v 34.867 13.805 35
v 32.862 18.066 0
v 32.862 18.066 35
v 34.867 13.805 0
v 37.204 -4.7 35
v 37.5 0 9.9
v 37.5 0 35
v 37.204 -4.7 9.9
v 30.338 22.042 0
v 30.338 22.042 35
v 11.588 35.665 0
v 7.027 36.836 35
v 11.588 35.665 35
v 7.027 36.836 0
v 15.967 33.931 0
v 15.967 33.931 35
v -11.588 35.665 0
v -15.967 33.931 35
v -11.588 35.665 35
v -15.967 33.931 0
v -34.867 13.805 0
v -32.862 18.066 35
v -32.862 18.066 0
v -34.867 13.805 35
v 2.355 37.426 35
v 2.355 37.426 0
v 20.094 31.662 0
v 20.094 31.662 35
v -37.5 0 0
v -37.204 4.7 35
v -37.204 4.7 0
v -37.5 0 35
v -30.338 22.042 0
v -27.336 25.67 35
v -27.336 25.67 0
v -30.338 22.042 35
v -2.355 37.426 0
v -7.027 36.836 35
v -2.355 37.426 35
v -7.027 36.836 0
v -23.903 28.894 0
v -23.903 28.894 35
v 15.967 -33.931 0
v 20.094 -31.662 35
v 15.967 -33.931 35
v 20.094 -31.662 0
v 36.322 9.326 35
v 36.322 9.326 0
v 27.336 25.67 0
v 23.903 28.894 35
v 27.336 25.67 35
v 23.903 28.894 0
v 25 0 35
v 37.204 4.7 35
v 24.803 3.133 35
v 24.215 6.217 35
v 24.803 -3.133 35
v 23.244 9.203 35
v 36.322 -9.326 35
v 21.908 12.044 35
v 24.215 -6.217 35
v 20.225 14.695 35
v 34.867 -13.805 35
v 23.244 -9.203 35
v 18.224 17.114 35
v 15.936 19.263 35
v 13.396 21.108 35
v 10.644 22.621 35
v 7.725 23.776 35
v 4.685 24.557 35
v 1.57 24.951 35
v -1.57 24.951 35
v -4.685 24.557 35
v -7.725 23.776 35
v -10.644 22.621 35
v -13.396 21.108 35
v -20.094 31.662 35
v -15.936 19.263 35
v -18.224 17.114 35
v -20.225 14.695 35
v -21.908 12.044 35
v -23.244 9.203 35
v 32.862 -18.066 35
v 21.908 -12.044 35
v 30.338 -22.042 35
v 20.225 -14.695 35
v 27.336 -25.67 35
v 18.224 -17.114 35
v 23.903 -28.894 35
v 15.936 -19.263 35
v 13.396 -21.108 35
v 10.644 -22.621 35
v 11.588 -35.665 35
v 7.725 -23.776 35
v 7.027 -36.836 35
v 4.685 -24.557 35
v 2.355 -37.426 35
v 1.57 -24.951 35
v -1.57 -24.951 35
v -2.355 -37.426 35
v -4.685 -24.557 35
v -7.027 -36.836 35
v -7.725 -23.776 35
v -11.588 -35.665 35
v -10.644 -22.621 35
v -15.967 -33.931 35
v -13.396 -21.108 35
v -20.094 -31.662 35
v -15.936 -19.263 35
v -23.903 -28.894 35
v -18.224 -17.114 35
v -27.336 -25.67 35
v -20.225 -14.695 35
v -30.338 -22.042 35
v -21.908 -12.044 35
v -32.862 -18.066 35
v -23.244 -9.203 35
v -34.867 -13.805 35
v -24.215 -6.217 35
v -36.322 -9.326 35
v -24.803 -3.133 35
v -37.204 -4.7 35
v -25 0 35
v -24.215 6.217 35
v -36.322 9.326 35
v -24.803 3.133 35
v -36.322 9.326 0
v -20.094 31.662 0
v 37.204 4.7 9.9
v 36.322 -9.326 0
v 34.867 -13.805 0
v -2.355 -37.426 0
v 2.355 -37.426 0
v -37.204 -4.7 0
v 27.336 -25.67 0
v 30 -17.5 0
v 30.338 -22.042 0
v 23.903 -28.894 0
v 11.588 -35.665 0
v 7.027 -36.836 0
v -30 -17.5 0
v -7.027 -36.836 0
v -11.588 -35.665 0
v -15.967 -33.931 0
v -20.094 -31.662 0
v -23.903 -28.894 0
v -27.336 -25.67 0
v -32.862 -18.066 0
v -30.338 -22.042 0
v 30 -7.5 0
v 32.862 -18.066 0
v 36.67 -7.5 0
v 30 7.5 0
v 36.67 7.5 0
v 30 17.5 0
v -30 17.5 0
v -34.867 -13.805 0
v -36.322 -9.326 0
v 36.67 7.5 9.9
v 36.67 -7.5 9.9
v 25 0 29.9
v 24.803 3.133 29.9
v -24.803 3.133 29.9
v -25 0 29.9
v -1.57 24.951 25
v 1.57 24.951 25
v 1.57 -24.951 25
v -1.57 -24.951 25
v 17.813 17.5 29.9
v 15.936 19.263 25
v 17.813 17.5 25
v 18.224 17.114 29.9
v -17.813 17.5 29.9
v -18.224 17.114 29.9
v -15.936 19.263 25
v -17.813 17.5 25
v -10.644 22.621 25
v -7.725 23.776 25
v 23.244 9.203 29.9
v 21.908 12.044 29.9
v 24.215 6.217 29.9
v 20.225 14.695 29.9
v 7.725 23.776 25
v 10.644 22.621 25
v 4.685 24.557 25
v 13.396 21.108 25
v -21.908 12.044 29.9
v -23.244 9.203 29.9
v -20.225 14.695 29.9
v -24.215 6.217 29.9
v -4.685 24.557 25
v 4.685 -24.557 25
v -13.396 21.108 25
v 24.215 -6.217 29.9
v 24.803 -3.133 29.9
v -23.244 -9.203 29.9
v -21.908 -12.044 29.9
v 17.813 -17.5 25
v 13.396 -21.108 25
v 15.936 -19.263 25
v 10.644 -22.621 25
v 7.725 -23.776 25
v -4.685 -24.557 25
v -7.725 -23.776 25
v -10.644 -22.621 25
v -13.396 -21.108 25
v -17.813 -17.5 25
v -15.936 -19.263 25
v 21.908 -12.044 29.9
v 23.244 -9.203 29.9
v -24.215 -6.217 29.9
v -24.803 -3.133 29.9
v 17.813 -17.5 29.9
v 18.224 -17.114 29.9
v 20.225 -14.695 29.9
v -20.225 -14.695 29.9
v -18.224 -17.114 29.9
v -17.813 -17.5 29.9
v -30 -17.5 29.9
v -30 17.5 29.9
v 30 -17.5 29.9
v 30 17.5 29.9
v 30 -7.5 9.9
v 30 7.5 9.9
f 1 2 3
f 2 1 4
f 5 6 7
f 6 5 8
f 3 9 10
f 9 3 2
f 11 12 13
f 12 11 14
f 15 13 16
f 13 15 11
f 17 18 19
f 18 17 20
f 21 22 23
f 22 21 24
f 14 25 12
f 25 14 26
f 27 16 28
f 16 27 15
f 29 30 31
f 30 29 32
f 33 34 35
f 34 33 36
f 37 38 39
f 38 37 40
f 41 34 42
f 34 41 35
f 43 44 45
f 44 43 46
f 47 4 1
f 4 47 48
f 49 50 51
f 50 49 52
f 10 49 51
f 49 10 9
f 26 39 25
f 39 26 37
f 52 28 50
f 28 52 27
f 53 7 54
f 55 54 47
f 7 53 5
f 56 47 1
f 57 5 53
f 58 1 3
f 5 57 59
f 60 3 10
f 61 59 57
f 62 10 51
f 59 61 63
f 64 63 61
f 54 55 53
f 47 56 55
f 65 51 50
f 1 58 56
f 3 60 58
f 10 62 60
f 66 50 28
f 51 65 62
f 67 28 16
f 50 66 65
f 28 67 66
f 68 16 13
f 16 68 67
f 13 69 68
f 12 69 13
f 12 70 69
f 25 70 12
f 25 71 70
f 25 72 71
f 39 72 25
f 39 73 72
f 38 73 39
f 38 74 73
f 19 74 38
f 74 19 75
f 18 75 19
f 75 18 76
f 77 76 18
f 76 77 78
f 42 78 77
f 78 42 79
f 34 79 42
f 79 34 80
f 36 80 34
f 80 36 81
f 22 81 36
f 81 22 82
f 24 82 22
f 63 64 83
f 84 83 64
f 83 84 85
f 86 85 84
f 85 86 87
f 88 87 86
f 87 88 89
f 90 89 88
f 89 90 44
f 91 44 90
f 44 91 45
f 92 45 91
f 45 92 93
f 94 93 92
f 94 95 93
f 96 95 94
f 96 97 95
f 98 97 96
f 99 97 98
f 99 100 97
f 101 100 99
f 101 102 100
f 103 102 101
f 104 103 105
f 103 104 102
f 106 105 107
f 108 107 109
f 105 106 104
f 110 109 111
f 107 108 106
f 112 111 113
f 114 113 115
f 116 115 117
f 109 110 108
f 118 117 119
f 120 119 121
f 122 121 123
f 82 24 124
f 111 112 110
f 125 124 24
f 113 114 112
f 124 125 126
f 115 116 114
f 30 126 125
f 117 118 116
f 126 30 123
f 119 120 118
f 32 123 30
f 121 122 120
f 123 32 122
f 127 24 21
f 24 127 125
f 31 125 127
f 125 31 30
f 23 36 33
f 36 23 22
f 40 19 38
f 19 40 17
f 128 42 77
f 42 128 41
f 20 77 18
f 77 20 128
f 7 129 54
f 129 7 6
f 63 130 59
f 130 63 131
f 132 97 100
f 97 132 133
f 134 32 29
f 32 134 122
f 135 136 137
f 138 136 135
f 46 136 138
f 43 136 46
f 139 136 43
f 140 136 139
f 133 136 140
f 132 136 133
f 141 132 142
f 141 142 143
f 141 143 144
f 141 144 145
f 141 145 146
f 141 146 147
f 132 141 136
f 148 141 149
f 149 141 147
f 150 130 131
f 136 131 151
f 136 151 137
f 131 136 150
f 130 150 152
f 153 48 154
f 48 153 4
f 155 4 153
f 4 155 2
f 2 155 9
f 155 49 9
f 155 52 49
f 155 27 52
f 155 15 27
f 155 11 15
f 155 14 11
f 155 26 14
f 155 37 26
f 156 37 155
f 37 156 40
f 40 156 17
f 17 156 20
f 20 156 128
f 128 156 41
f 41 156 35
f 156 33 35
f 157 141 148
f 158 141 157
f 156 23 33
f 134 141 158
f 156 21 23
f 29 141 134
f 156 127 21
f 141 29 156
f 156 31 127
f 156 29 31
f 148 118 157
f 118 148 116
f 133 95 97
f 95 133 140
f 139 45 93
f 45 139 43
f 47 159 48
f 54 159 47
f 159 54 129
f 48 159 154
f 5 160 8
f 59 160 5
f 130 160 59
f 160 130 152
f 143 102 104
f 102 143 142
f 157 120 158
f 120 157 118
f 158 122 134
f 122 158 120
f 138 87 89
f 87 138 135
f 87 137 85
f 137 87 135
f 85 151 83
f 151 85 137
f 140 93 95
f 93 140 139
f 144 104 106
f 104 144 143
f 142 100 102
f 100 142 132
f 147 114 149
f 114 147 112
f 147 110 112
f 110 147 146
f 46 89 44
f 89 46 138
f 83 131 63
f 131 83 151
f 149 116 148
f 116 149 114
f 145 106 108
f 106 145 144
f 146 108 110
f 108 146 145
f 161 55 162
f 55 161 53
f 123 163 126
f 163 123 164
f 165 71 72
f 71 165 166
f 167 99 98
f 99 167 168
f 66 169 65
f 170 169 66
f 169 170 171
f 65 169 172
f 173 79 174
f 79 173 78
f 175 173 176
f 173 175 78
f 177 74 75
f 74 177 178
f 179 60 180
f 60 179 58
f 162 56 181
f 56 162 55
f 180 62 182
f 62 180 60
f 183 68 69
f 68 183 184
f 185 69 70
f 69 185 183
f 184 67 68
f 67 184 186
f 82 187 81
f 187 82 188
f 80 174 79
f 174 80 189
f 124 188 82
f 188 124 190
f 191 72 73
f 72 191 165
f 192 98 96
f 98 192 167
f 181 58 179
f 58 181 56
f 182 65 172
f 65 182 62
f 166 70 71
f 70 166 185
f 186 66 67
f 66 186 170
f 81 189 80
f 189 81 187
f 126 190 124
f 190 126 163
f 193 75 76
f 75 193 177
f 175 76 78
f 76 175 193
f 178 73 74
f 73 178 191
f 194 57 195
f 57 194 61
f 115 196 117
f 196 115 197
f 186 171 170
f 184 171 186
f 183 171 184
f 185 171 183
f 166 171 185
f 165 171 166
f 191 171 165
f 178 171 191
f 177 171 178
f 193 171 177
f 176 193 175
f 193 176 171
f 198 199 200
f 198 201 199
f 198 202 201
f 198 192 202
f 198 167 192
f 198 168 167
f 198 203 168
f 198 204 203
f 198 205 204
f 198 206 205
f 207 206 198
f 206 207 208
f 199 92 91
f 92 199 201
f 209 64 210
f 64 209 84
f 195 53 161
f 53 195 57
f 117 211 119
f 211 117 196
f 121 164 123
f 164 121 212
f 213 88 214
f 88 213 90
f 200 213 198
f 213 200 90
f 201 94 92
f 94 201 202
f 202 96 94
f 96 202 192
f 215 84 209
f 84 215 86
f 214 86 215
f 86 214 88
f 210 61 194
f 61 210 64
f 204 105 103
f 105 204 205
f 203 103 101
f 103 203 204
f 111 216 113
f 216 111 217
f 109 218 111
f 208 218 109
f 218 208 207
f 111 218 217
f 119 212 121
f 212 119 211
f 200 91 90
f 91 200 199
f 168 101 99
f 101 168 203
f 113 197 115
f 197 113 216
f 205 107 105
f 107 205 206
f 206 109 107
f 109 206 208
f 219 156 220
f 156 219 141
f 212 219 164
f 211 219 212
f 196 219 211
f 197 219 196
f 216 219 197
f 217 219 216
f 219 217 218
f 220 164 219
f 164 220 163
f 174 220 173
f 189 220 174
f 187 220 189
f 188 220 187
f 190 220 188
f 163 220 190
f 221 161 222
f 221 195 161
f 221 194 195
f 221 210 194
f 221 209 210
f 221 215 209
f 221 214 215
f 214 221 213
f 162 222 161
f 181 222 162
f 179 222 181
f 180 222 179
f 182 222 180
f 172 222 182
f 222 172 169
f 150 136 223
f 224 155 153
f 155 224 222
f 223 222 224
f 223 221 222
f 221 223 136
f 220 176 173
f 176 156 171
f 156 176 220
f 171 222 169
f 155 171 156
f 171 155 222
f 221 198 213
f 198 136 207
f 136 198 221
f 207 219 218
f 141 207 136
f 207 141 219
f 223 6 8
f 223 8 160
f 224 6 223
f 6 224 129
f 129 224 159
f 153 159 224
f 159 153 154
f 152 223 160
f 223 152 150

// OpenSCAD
difference() {
cylinder(d=75,h=35,$fn=50);
    translate([0,0,25])cylinder(d=50,h=10.1,$fn=50);
%    translate([0,0,25])cylinder(d=55,h=5,$fn=50);
    translate([0,0,15-0.1])cube([60,35,30], center=true);
    translate([10,0,5-0.1])cube([60,15,10],center=true);
}
